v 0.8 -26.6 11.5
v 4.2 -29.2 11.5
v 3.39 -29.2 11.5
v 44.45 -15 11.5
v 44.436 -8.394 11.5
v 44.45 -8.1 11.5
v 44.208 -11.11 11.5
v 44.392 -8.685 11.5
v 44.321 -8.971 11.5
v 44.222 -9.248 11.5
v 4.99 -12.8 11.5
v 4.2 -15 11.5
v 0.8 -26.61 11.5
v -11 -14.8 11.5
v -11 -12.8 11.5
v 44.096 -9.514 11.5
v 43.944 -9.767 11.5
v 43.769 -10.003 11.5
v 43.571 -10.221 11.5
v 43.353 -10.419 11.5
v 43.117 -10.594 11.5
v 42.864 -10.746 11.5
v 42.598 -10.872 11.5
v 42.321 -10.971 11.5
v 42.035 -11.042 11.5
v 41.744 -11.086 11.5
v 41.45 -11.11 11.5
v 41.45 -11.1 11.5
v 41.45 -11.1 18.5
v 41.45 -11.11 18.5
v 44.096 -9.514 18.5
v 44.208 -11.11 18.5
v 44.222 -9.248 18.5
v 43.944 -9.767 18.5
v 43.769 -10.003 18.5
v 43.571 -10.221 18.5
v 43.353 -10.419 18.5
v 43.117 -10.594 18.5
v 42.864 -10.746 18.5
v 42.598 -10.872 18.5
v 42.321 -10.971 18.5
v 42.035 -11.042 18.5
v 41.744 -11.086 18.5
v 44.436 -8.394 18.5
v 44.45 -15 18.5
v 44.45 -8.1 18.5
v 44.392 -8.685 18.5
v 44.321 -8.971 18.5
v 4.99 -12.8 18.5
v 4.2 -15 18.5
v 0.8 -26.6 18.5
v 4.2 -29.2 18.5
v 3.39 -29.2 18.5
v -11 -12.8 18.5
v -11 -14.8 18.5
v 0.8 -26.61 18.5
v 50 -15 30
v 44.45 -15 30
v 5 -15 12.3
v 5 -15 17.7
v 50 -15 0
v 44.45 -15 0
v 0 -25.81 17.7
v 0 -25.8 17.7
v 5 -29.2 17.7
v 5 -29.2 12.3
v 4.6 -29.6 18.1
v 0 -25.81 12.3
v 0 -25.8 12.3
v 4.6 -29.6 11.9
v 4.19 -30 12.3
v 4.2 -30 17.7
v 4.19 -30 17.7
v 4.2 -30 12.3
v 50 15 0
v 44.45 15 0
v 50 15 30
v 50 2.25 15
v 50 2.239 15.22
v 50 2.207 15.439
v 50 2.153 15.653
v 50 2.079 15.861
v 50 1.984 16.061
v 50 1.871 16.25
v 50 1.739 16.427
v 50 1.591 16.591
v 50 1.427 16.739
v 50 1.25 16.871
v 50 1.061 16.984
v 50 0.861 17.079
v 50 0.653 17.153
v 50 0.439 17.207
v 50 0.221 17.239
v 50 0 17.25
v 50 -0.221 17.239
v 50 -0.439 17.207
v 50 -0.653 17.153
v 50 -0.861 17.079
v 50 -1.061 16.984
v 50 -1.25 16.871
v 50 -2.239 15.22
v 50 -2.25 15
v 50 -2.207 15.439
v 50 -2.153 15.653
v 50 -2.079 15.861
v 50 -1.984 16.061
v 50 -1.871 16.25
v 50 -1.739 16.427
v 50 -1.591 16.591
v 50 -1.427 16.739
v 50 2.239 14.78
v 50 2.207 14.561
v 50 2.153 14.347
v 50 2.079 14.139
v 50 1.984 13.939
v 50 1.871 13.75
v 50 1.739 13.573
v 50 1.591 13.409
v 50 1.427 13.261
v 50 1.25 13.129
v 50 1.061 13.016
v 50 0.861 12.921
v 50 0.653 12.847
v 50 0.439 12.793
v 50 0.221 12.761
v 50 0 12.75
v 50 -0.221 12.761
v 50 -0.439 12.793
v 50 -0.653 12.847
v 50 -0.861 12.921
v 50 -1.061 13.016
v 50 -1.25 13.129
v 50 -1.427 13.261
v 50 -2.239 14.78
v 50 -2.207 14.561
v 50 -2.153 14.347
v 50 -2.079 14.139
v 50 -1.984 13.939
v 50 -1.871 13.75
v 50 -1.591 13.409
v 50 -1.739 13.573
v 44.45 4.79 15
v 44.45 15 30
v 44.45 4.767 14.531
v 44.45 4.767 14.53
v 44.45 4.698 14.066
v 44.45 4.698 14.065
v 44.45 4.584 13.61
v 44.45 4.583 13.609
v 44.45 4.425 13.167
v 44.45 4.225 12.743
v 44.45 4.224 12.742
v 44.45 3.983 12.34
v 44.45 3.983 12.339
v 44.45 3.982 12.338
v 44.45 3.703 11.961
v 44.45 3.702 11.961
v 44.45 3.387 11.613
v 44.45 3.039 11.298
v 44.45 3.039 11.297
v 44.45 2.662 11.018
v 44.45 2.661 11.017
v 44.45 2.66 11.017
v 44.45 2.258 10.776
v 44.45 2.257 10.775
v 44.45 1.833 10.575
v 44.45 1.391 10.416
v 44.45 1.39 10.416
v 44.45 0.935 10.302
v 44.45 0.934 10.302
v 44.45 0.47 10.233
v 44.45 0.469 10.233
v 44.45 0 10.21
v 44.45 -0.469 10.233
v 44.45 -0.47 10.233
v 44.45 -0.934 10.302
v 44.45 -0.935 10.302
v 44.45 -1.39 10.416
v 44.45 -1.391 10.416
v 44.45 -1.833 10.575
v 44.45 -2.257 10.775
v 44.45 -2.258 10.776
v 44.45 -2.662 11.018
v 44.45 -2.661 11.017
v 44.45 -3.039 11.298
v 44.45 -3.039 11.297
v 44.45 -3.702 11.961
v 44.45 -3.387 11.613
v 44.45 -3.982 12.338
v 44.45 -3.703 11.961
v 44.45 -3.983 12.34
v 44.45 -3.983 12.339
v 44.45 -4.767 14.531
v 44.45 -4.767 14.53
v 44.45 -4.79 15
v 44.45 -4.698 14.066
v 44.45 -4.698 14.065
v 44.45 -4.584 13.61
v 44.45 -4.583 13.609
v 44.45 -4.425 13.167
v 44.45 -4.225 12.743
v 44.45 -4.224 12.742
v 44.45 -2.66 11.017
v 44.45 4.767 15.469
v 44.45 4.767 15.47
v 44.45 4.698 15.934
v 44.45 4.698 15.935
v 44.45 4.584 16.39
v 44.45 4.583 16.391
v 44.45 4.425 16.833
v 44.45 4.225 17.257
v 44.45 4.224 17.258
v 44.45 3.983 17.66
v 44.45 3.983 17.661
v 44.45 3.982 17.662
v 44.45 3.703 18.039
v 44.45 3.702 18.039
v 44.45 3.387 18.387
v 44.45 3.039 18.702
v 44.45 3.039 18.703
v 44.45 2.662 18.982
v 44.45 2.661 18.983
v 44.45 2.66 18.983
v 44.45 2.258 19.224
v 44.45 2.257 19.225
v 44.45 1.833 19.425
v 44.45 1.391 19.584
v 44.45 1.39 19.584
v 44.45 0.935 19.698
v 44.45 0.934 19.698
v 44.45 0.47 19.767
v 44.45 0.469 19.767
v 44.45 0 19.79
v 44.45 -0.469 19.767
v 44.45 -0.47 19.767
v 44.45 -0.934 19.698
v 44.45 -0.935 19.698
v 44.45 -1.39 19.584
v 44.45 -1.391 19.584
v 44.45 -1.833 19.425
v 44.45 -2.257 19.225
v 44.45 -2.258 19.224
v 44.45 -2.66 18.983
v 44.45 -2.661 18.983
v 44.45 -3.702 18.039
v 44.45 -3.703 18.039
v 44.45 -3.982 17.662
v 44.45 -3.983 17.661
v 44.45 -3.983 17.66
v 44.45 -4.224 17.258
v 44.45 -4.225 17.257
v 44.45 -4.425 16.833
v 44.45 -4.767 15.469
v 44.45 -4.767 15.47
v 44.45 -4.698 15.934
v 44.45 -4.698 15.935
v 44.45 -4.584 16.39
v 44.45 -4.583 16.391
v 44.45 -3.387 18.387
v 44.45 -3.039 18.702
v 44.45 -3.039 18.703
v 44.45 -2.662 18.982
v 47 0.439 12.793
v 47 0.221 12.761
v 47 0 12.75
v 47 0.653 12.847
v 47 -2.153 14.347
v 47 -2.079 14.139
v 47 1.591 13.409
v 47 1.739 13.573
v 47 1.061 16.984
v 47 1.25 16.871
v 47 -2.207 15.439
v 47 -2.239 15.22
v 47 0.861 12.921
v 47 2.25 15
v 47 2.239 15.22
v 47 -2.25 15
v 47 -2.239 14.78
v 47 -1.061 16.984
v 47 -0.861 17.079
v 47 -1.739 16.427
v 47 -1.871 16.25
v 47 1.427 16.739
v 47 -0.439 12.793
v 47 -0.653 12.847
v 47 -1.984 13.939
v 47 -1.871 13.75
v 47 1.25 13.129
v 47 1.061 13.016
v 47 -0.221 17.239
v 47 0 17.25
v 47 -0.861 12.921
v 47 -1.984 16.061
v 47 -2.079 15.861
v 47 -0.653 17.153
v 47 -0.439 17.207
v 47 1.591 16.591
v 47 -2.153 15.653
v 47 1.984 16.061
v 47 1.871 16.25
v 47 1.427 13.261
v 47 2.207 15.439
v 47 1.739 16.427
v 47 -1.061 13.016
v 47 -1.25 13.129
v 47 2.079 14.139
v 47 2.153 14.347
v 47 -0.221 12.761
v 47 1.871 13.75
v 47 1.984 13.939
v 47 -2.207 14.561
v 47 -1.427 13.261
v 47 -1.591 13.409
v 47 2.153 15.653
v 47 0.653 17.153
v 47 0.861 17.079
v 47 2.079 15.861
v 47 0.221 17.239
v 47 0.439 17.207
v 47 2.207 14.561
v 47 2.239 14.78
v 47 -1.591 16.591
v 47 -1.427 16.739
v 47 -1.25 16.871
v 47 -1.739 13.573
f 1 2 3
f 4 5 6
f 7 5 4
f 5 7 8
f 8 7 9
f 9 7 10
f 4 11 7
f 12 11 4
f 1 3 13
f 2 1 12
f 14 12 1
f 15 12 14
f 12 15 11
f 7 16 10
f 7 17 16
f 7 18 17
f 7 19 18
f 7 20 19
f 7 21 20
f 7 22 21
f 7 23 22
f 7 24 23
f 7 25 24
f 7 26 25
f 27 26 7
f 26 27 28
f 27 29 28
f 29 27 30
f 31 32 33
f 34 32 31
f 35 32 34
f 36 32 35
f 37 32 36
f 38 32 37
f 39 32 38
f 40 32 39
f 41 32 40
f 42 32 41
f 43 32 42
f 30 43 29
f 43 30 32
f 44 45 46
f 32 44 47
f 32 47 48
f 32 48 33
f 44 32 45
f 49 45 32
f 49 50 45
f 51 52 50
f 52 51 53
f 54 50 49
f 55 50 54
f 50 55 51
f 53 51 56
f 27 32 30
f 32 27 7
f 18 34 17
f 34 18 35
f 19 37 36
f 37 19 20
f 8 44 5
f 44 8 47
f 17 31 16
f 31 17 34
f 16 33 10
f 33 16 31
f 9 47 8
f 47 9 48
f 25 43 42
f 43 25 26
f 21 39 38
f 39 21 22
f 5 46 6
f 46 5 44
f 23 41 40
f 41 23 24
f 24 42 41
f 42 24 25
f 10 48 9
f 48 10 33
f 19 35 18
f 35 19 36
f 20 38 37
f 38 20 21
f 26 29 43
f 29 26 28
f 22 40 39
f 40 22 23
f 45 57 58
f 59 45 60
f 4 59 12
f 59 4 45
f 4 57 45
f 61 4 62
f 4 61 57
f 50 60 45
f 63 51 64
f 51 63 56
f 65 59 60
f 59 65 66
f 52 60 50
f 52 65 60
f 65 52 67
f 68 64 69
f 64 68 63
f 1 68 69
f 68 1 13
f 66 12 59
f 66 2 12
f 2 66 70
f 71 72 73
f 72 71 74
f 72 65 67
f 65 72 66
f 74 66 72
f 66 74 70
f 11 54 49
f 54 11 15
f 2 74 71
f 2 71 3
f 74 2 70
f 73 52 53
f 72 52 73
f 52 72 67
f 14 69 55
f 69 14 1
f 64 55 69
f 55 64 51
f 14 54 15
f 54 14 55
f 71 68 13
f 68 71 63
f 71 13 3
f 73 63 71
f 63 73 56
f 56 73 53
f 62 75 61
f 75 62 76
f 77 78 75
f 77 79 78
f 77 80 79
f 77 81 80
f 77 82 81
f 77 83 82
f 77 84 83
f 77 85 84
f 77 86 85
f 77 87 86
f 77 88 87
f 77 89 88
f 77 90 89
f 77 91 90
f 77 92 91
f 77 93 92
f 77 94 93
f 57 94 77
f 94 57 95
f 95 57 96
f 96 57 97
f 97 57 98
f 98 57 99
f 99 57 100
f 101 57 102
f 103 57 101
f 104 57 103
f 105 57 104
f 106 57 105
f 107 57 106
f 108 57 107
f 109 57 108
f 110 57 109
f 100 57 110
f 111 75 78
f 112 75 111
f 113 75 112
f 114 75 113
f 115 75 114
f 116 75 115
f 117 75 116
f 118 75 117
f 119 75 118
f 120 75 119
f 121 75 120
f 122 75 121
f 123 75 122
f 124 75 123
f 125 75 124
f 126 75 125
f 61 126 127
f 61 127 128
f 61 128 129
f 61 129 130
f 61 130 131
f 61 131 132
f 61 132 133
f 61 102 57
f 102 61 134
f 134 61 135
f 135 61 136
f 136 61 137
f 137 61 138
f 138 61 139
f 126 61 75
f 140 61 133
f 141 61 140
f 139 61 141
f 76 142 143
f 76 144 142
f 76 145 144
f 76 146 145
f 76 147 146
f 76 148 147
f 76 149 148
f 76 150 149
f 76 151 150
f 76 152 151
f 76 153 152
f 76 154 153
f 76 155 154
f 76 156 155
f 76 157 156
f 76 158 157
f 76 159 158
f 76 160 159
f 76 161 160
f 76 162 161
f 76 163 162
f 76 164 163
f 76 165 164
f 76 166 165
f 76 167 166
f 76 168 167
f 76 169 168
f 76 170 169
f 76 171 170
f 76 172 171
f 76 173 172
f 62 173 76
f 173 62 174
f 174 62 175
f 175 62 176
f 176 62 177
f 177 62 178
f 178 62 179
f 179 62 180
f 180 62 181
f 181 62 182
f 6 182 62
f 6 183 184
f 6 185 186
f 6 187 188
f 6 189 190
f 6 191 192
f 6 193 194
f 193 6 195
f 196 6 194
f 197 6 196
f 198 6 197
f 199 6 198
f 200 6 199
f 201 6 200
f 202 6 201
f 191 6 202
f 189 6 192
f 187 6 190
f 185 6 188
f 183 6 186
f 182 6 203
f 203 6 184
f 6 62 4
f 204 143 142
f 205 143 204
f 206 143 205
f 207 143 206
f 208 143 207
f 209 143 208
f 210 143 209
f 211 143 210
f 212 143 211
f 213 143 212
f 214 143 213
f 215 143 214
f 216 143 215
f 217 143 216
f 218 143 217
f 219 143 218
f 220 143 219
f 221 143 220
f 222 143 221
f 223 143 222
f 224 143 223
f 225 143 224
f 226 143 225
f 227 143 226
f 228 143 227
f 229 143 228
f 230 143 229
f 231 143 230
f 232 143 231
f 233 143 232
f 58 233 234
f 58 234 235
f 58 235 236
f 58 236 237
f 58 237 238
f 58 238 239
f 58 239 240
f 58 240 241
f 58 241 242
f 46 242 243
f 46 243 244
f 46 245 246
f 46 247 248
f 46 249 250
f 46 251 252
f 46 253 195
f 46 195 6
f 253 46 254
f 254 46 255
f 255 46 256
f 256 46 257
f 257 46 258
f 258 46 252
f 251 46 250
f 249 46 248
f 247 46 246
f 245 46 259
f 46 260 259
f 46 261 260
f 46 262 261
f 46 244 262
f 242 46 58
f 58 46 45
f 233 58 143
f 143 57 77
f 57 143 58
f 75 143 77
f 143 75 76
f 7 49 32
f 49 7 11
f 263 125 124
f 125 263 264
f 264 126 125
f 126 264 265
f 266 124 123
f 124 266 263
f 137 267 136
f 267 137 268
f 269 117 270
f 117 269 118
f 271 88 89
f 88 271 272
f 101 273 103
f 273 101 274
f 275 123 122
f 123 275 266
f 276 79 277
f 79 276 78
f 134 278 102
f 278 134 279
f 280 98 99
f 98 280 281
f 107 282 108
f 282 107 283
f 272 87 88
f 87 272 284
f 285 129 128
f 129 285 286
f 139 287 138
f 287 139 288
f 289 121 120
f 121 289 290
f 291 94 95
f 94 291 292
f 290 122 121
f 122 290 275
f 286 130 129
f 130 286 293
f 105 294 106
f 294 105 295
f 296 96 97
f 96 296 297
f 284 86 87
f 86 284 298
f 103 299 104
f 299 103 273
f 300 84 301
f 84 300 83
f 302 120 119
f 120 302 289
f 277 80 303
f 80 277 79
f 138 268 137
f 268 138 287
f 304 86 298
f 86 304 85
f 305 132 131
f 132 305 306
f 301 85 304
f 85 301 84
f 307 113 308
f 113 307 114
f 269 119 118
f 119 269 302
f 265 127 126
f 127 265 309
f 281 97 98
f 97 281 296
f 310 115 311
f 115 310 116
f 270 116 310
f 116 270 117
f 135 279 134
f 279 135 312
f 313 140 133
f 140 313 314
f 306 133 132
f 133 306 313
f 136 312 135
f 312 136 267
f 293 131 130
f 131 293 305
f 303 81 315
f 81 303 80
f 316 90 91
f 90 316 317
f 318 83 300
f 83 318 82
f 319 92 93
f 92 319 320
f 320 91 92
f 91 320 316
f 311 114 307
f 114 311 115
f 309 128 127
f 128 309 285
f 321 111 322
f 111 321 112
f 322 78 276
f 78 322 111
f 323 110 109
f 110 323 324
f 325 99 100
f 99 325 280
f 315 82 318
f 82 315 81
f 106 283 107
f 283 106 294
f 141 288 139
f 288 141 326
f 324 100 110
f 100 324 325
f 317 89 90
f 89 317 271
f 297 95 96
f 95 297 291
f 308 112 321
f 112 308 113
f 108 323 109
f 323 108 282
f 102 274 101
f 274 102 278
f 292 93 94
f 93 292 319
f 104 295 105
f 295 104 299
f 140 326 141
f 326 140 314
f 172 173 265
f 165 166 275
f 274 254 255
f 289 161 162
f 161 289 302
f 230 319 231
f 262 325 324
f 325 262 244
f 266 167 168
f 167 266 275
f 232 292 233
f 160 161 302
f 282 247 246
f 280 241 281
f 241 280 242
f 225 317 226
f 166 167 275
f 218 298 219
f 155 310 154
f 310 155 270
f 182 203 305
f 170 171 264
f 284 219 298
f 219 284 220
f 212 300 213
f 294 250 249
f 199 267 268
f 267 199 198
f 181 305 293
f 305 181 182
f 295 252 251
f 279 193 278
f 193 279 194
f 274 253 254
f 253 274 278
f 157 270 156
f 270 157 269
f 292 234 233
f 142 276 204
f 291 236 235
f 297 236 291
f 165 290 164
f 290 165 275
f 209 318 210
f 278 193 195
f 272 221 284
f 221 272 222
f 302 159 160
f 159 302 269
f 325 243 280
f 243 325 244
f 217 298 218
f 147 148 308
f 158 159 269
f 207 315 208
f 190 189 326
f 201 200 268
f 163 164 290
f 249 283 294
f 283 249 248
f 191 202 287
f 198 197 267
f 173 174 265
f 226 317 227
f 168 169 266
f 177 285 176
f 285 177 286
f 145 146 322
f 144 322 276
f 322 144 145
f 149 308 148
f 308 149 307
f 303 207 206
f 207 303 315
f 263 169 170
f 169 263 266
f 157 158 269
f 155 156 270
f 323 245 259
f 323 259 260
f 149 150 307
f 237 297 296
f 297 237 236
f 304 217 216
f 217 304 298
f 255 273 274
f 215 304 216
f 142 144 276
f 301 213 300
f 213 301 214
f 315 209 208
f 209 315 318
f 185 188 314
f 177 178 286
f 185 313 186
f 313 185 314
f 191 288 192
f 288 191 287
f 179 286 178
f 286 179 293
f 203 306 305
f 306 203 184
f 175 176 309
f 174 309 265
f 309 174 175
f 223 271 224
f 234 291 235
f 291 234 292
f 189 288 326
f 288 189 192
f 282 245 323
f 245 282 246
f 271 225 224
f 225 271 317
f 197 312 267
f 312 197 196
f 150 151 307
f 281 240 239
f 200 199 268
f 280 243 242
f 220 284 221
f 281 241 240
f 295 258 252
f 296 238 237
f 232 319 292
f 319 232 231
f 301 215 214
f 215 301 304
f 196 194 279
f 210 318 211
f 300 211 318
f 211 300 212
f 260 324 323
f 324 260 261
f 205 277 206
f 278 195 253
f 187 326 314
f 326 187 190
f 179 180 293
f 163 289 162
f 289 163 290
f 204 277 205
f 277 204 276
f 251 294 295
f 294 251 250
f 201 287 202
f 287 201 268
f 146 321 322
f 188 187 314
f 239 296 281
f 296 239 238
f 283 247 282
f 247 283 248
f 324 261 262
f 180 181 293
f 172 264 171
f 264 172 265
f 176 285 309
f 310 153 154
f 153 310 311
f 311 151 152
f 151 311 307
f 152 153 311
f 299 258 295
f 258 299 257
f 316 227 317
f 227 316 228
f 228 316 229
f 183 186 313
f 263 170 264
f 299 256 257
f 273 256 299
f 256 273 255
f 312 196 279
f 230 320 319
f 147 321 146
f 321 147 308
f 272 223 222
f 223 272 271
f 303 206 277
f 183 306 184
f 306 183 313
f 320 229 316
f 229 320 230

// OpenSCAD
// file: catch1_common.scad
// ============================================================
// Sliding screen catch - ONE-PIECE variant: parameters
// Included by catch_1piece.scad and catch_1piece_print_plate.scad.
//
// Same envelope as the 2-piece design, but the plate screws straight to
// the frame above and the leg is a cantilever spring: push the foot
// forward (-Y) about 3 mm to release the screen.
//
// Coordinate system (installed position):
//   Origin at plate centre (X, Y), Z up, foot bottom at z = 0.
//   The frame is above: plate top face at z = total_h.
//   Front edge of the plate is -Y; the leg hangs from it.
// ============================================================

$fn = 64;

// ---- Plate (screws to the frame) ----
plate_w      = 30;   // plate size, X
plate_d      = 30;   // plate size, Y
screw_meat   = 3;    // solid material between countersink bottom and frame face

// ---- Leg (flex spring) ----
leg_w        = 7;    // leg width, X (stiff direction) - same as 2-piece
leg_t        = 3.9;  // leg thickness at the root, Y (flex direction) // guess
leg_t_tip    = 2.2;  // leg thickness at the foot - linear taper spreads the strain along the leg // guess
leg_fillet_r = 3;    // fillet at the leg root, back (tension) side // guess
release_flex = 3;    // foot travel needed to release the catch

// ---- Material: PLA ----
mat_E        = 3300; // MPa, PLA printed with layers along the leg // guess (typical 3000-3500)
max_strain   = 0.01; // allowed peak strain for repeated flexing in PLA (yield ~2-3 %, brittle)

// ---- Foot ----
foot_w       = 7;    // foot width, X
foot_proj    = 15;   // how far the foot sticks out in front of the leg
foot_t       = 5;    // foot thickness, Z
foot_bevel   = 0.8;  // 45-degree chamfer on the foot's outside edges // guess
foot_ext_bot = 2;    // foot extends below z = 0 until its bottom is this long (Y): back edge
                     // straight down, front a 45-degree bevel below the front-top chamfer

total_h      = 50;   // bottom of foot to frame face - overall installed height

// ---- Wood screw (#8 / ~4 mm flat head) ----
screw_d      = 4.5;  // shank clearance hole
screw_head_d = 9.6;  // countersink diameter at the surface
screw_csk_angle = 90; // included angle (82 for US imperial screws, 90 metric)

// ---- Derived ----
csk_depth    = (screw_head_d - screw_d) / 2 / tan(screw_csk_angle / 2);   // ~2.55
plate_t      = csk_depth + screw_meat;      // ~5.55, countersunk from below
plate_bot_z  = total_h - plate_t;
leg_h        = plate_bot_z - foot_t;        // flexing length, ~39.45
foot_l       = foot_proj + leg_t_tip;       // total foot length incl. the part under the leg
front_y      = -plate_d / 2;
leg_y0       = front_y;                     // leg flush with front edge
foot_y0      = leg_y0 + leg_t_tip - foot_l; // foot projects forward (-Y)
foot_ext_z   = foot_t - foot_bevel - (foot_l - foot_ext_bot);  // bottom of the foot extension, below z = 0

// ---- Flex analysis (tapered cantilever, point load at the foot) ----
// s = distance down from the leg root (0 .. leg_h).
function leg_t_at(s) = leg_t + (leg_t_tip - leg_t) * s / leg_h;
function leg_I(s)    = leg_w * pow(leg_t_at(s), 3) / 12;
flex_n = 200;        // integration steps
// compliance: sum over the leg of (L - x)(s - x) / I(x) for x < s
function _c(s, i = 0) = i >= flex_n ? 0 :
    let(x = (i + 0.5) * s / flex_n)
    (leg_h - x) * (s - x) / leg_I(x) * s / flex_n + _c(s, i + 1);
push_force   = release_flex * mat_E / _c(leg_h);              // N, to push the foot release_flex mm
function leg_defl(s) = push_force / mat_E * _c(s);            // mm, deflected shape
flex_strain  = push_force * leg_h * (leg_t / 2) / (mat_E * leg_I(0));  // peak, at the root
assert(flex_strain <= max_strain,
       str("leg root strain ", flex_strain, " exceeds max_strain - thin or taper the leg"));
// main file
// ============================================================
// Sliding screen catch - one-piece variant
// Plate screws to the frame above with one countersunk wood screw
// (head sits flush in the plate underside). The leg is a cantilever
// spring; push the foot forward (-Y) ~3 mm to release.
//
// Print: lying on its side, +X face on the bed, so the leg's length and
// its bending direction lie in the layer plane (layers never run across
// the spring). Needs support under the leg and foot only.
// This file renders in print orientation (catch_1piece_print);
// catch_1piece() is in installed coordinates.
// ============================================================

include <catch1_common.scad>

echo(str("plate_t = ", plate_t, " mm, leg_h = ", leg_h,
         " mm; at ", release_flex, " mm flex: root strain = ",
         round(flex_strain * 1000) / 10, " %, push force = ",
         round(push_force * 10) / 10, " N"));

module plate() {
    translate([-plate_w/2, -plate_d/2, plate_bot_z])
        cube([plate_w, plate_d, plate_t]);
}

module screw_hole() {
    // shank
    translate([0, 0, plate_bot_z - 1]) cylinder(d = screw_d, h = plate_t + 2);
    // countersink cone, opening downward (screw driven up into the frame)
    translate([0, 0, plate_bot_z - 0.01])
        cylinder(d1 = screw_head_d, d2 = screw_d, h = csk_depth + 0.01);
}

// Tapered leg: front face flush with the plate edge, back face slopes
// from leg_t at the root to leg_t_tip at the foot.
module leg() {
    hull() {
        translate([-leg_w/2, leg_y0, plate_bot_z - 0.01]) cube([leg_w, leg_t, 0.02]);
        translate([-leg_w/2, leg_y0, foot_t - 0.01])      cube([leg_w, leg_t_tip, 0.02]);
    }
}

// Concave fillet in the corner between the leg's back face (+Y) and the
// plate underside - the side in tension when the foot is pushed forward.
module leg_fillet() {
    r = leg_fillet_r;
    y0 = leg_y0 + leg_t;
    translate([-leg_w/2, 0, 0])
        difference() {
            translate([0, y0 - 0.01, plate_bot_z - r]) cube([leg_w, r + 0.01, r + 0.01]);
            translate([-1, y0 + r, plate_bot_z - r]) rotate([0, 90, 0])
                cylinder(r = r, h = leg_w + 2);
        }
}

// Foot block (z 0 .. foot_t) with every exposed edge chamfered by foot_bevel. Edges that run
// into the leg (top edges of the part under the leg) stay square so the
// leg's faces carry straight down into the foot.
module foot_block() {
    c  = foot_bevel;
    y0 = foot_y0;  y1 = foot_y0 + foot_l;  w = foot_w / 2;  t = foot_t;
    intersection() {
        // side profile (Y-Z): front-top, front-bottom, back-bottom corners
        rotate([90, 0, 90]) translate([0, 0, -w - 1]) linear_extrude(foot_w + 2)
            polygon([[y0 + c, 0], [y1 - c, 0], [y1, c], [y1, t],
                     [y0 + c, t], [y0, t - c], [y0, c]]);
        // plan (X-Y): front vertical corners
        translate([0, 0, -1]) linear_extrude(t + 2)
            polygon([[-w, y0 + c], [-w + c, y0], [w - c, y0], [w, y0 + c],
                     [w, y1 + 1], [-w, y1 + 1]]);
        // cross-section (X-Z): bottom edges full length; top edges only in
        // front of the leg
        union() {
            translate([0, y0 - 1, 0]) rotate([-90, 0, 0]) mirror([0, 1, 0])
                linear_extrude(leg_y0 - y0 + 1)
                    polygon([[-w + c, 0], [w - c, 0], [w, c], [w, t - c],
                             [w - c, t], [-w + c, t], [-w, t - c], [-w, c]]);
            translate([0, leg_y0, 0]) rotate([-90, 0, 0]) mirror([0, 1, 0])
                linear_extrude(y1 - leg_y0 + 1)
                    polygon([[-w + c, 0], [w - c, 0], [w, c], [w, t + 1], [-w, t + 1], [-w, c]]);
        }
    }
}

// Foot extension below the foot (z < 0). Back edge (+Y, under the leg)
// drops straight down. The foot keeps its front-top chamfer; below it the
// front is one 45-degree bevel running down and back until the bottom is
// foot_ext_bot long (the vertical front face and lower front chamfers are
// cut away). Full foot width in X.

// Y-Z profile, extruded across X (width w, centred).
module foot_yz(pts, w) {
    rotate([90, 0, 90]) translate([0, 0, -w/2]) linear_extrude(w) polygon(pts);
}

module foot_extension() {
    zt = foot_t - foot_bevel;   // bevel starts at (foot_y0, zt)
    y1 = foot_y0 + foot_l;
    foot_yz([[foot_y0 + zt - foot_bevel, foot_bevel], [y1, foot_bevel],
             [y1, foot_ext_z], [y1 - foot_ext_bot, foot_ext_z]], foot_w);
}

// Everything in front of the 45-degree bevel line (below the chamfer).
module foot_front_cut() {
    zt = foot_t - foot_bevel;  zl = foot_ext_z - 1;  e = 0.01;
    foot_yz([[foot_y0 - e, foot_t + 1], [foot_y0 - e, zt],
             [foot_y0 - e + zt - zl, zl],
             [foot_y0 - 1, zl], [foot_y0 - 1, foot_t + 1]], foot_w + 2);
}

module catch_foot() {
    difference() {
        union() { foot_block(); foot_extension(); }
        foot_front_cut();
    }
}

module catch_1piece() {
    difference() {
        union() {
            plate();
            leg();
            leg_fillet();
            catch_foot();
        }
        screw_hole();
    }
}

// Print orientation: +X face on the bed (z = 0), installed Z runs along +X.
module catch_1piece_print() {
    translate([0, 0, plate_w/2]) rotate([0, 90, 0]) catch_1piece();
}

catch_1piece_print();
